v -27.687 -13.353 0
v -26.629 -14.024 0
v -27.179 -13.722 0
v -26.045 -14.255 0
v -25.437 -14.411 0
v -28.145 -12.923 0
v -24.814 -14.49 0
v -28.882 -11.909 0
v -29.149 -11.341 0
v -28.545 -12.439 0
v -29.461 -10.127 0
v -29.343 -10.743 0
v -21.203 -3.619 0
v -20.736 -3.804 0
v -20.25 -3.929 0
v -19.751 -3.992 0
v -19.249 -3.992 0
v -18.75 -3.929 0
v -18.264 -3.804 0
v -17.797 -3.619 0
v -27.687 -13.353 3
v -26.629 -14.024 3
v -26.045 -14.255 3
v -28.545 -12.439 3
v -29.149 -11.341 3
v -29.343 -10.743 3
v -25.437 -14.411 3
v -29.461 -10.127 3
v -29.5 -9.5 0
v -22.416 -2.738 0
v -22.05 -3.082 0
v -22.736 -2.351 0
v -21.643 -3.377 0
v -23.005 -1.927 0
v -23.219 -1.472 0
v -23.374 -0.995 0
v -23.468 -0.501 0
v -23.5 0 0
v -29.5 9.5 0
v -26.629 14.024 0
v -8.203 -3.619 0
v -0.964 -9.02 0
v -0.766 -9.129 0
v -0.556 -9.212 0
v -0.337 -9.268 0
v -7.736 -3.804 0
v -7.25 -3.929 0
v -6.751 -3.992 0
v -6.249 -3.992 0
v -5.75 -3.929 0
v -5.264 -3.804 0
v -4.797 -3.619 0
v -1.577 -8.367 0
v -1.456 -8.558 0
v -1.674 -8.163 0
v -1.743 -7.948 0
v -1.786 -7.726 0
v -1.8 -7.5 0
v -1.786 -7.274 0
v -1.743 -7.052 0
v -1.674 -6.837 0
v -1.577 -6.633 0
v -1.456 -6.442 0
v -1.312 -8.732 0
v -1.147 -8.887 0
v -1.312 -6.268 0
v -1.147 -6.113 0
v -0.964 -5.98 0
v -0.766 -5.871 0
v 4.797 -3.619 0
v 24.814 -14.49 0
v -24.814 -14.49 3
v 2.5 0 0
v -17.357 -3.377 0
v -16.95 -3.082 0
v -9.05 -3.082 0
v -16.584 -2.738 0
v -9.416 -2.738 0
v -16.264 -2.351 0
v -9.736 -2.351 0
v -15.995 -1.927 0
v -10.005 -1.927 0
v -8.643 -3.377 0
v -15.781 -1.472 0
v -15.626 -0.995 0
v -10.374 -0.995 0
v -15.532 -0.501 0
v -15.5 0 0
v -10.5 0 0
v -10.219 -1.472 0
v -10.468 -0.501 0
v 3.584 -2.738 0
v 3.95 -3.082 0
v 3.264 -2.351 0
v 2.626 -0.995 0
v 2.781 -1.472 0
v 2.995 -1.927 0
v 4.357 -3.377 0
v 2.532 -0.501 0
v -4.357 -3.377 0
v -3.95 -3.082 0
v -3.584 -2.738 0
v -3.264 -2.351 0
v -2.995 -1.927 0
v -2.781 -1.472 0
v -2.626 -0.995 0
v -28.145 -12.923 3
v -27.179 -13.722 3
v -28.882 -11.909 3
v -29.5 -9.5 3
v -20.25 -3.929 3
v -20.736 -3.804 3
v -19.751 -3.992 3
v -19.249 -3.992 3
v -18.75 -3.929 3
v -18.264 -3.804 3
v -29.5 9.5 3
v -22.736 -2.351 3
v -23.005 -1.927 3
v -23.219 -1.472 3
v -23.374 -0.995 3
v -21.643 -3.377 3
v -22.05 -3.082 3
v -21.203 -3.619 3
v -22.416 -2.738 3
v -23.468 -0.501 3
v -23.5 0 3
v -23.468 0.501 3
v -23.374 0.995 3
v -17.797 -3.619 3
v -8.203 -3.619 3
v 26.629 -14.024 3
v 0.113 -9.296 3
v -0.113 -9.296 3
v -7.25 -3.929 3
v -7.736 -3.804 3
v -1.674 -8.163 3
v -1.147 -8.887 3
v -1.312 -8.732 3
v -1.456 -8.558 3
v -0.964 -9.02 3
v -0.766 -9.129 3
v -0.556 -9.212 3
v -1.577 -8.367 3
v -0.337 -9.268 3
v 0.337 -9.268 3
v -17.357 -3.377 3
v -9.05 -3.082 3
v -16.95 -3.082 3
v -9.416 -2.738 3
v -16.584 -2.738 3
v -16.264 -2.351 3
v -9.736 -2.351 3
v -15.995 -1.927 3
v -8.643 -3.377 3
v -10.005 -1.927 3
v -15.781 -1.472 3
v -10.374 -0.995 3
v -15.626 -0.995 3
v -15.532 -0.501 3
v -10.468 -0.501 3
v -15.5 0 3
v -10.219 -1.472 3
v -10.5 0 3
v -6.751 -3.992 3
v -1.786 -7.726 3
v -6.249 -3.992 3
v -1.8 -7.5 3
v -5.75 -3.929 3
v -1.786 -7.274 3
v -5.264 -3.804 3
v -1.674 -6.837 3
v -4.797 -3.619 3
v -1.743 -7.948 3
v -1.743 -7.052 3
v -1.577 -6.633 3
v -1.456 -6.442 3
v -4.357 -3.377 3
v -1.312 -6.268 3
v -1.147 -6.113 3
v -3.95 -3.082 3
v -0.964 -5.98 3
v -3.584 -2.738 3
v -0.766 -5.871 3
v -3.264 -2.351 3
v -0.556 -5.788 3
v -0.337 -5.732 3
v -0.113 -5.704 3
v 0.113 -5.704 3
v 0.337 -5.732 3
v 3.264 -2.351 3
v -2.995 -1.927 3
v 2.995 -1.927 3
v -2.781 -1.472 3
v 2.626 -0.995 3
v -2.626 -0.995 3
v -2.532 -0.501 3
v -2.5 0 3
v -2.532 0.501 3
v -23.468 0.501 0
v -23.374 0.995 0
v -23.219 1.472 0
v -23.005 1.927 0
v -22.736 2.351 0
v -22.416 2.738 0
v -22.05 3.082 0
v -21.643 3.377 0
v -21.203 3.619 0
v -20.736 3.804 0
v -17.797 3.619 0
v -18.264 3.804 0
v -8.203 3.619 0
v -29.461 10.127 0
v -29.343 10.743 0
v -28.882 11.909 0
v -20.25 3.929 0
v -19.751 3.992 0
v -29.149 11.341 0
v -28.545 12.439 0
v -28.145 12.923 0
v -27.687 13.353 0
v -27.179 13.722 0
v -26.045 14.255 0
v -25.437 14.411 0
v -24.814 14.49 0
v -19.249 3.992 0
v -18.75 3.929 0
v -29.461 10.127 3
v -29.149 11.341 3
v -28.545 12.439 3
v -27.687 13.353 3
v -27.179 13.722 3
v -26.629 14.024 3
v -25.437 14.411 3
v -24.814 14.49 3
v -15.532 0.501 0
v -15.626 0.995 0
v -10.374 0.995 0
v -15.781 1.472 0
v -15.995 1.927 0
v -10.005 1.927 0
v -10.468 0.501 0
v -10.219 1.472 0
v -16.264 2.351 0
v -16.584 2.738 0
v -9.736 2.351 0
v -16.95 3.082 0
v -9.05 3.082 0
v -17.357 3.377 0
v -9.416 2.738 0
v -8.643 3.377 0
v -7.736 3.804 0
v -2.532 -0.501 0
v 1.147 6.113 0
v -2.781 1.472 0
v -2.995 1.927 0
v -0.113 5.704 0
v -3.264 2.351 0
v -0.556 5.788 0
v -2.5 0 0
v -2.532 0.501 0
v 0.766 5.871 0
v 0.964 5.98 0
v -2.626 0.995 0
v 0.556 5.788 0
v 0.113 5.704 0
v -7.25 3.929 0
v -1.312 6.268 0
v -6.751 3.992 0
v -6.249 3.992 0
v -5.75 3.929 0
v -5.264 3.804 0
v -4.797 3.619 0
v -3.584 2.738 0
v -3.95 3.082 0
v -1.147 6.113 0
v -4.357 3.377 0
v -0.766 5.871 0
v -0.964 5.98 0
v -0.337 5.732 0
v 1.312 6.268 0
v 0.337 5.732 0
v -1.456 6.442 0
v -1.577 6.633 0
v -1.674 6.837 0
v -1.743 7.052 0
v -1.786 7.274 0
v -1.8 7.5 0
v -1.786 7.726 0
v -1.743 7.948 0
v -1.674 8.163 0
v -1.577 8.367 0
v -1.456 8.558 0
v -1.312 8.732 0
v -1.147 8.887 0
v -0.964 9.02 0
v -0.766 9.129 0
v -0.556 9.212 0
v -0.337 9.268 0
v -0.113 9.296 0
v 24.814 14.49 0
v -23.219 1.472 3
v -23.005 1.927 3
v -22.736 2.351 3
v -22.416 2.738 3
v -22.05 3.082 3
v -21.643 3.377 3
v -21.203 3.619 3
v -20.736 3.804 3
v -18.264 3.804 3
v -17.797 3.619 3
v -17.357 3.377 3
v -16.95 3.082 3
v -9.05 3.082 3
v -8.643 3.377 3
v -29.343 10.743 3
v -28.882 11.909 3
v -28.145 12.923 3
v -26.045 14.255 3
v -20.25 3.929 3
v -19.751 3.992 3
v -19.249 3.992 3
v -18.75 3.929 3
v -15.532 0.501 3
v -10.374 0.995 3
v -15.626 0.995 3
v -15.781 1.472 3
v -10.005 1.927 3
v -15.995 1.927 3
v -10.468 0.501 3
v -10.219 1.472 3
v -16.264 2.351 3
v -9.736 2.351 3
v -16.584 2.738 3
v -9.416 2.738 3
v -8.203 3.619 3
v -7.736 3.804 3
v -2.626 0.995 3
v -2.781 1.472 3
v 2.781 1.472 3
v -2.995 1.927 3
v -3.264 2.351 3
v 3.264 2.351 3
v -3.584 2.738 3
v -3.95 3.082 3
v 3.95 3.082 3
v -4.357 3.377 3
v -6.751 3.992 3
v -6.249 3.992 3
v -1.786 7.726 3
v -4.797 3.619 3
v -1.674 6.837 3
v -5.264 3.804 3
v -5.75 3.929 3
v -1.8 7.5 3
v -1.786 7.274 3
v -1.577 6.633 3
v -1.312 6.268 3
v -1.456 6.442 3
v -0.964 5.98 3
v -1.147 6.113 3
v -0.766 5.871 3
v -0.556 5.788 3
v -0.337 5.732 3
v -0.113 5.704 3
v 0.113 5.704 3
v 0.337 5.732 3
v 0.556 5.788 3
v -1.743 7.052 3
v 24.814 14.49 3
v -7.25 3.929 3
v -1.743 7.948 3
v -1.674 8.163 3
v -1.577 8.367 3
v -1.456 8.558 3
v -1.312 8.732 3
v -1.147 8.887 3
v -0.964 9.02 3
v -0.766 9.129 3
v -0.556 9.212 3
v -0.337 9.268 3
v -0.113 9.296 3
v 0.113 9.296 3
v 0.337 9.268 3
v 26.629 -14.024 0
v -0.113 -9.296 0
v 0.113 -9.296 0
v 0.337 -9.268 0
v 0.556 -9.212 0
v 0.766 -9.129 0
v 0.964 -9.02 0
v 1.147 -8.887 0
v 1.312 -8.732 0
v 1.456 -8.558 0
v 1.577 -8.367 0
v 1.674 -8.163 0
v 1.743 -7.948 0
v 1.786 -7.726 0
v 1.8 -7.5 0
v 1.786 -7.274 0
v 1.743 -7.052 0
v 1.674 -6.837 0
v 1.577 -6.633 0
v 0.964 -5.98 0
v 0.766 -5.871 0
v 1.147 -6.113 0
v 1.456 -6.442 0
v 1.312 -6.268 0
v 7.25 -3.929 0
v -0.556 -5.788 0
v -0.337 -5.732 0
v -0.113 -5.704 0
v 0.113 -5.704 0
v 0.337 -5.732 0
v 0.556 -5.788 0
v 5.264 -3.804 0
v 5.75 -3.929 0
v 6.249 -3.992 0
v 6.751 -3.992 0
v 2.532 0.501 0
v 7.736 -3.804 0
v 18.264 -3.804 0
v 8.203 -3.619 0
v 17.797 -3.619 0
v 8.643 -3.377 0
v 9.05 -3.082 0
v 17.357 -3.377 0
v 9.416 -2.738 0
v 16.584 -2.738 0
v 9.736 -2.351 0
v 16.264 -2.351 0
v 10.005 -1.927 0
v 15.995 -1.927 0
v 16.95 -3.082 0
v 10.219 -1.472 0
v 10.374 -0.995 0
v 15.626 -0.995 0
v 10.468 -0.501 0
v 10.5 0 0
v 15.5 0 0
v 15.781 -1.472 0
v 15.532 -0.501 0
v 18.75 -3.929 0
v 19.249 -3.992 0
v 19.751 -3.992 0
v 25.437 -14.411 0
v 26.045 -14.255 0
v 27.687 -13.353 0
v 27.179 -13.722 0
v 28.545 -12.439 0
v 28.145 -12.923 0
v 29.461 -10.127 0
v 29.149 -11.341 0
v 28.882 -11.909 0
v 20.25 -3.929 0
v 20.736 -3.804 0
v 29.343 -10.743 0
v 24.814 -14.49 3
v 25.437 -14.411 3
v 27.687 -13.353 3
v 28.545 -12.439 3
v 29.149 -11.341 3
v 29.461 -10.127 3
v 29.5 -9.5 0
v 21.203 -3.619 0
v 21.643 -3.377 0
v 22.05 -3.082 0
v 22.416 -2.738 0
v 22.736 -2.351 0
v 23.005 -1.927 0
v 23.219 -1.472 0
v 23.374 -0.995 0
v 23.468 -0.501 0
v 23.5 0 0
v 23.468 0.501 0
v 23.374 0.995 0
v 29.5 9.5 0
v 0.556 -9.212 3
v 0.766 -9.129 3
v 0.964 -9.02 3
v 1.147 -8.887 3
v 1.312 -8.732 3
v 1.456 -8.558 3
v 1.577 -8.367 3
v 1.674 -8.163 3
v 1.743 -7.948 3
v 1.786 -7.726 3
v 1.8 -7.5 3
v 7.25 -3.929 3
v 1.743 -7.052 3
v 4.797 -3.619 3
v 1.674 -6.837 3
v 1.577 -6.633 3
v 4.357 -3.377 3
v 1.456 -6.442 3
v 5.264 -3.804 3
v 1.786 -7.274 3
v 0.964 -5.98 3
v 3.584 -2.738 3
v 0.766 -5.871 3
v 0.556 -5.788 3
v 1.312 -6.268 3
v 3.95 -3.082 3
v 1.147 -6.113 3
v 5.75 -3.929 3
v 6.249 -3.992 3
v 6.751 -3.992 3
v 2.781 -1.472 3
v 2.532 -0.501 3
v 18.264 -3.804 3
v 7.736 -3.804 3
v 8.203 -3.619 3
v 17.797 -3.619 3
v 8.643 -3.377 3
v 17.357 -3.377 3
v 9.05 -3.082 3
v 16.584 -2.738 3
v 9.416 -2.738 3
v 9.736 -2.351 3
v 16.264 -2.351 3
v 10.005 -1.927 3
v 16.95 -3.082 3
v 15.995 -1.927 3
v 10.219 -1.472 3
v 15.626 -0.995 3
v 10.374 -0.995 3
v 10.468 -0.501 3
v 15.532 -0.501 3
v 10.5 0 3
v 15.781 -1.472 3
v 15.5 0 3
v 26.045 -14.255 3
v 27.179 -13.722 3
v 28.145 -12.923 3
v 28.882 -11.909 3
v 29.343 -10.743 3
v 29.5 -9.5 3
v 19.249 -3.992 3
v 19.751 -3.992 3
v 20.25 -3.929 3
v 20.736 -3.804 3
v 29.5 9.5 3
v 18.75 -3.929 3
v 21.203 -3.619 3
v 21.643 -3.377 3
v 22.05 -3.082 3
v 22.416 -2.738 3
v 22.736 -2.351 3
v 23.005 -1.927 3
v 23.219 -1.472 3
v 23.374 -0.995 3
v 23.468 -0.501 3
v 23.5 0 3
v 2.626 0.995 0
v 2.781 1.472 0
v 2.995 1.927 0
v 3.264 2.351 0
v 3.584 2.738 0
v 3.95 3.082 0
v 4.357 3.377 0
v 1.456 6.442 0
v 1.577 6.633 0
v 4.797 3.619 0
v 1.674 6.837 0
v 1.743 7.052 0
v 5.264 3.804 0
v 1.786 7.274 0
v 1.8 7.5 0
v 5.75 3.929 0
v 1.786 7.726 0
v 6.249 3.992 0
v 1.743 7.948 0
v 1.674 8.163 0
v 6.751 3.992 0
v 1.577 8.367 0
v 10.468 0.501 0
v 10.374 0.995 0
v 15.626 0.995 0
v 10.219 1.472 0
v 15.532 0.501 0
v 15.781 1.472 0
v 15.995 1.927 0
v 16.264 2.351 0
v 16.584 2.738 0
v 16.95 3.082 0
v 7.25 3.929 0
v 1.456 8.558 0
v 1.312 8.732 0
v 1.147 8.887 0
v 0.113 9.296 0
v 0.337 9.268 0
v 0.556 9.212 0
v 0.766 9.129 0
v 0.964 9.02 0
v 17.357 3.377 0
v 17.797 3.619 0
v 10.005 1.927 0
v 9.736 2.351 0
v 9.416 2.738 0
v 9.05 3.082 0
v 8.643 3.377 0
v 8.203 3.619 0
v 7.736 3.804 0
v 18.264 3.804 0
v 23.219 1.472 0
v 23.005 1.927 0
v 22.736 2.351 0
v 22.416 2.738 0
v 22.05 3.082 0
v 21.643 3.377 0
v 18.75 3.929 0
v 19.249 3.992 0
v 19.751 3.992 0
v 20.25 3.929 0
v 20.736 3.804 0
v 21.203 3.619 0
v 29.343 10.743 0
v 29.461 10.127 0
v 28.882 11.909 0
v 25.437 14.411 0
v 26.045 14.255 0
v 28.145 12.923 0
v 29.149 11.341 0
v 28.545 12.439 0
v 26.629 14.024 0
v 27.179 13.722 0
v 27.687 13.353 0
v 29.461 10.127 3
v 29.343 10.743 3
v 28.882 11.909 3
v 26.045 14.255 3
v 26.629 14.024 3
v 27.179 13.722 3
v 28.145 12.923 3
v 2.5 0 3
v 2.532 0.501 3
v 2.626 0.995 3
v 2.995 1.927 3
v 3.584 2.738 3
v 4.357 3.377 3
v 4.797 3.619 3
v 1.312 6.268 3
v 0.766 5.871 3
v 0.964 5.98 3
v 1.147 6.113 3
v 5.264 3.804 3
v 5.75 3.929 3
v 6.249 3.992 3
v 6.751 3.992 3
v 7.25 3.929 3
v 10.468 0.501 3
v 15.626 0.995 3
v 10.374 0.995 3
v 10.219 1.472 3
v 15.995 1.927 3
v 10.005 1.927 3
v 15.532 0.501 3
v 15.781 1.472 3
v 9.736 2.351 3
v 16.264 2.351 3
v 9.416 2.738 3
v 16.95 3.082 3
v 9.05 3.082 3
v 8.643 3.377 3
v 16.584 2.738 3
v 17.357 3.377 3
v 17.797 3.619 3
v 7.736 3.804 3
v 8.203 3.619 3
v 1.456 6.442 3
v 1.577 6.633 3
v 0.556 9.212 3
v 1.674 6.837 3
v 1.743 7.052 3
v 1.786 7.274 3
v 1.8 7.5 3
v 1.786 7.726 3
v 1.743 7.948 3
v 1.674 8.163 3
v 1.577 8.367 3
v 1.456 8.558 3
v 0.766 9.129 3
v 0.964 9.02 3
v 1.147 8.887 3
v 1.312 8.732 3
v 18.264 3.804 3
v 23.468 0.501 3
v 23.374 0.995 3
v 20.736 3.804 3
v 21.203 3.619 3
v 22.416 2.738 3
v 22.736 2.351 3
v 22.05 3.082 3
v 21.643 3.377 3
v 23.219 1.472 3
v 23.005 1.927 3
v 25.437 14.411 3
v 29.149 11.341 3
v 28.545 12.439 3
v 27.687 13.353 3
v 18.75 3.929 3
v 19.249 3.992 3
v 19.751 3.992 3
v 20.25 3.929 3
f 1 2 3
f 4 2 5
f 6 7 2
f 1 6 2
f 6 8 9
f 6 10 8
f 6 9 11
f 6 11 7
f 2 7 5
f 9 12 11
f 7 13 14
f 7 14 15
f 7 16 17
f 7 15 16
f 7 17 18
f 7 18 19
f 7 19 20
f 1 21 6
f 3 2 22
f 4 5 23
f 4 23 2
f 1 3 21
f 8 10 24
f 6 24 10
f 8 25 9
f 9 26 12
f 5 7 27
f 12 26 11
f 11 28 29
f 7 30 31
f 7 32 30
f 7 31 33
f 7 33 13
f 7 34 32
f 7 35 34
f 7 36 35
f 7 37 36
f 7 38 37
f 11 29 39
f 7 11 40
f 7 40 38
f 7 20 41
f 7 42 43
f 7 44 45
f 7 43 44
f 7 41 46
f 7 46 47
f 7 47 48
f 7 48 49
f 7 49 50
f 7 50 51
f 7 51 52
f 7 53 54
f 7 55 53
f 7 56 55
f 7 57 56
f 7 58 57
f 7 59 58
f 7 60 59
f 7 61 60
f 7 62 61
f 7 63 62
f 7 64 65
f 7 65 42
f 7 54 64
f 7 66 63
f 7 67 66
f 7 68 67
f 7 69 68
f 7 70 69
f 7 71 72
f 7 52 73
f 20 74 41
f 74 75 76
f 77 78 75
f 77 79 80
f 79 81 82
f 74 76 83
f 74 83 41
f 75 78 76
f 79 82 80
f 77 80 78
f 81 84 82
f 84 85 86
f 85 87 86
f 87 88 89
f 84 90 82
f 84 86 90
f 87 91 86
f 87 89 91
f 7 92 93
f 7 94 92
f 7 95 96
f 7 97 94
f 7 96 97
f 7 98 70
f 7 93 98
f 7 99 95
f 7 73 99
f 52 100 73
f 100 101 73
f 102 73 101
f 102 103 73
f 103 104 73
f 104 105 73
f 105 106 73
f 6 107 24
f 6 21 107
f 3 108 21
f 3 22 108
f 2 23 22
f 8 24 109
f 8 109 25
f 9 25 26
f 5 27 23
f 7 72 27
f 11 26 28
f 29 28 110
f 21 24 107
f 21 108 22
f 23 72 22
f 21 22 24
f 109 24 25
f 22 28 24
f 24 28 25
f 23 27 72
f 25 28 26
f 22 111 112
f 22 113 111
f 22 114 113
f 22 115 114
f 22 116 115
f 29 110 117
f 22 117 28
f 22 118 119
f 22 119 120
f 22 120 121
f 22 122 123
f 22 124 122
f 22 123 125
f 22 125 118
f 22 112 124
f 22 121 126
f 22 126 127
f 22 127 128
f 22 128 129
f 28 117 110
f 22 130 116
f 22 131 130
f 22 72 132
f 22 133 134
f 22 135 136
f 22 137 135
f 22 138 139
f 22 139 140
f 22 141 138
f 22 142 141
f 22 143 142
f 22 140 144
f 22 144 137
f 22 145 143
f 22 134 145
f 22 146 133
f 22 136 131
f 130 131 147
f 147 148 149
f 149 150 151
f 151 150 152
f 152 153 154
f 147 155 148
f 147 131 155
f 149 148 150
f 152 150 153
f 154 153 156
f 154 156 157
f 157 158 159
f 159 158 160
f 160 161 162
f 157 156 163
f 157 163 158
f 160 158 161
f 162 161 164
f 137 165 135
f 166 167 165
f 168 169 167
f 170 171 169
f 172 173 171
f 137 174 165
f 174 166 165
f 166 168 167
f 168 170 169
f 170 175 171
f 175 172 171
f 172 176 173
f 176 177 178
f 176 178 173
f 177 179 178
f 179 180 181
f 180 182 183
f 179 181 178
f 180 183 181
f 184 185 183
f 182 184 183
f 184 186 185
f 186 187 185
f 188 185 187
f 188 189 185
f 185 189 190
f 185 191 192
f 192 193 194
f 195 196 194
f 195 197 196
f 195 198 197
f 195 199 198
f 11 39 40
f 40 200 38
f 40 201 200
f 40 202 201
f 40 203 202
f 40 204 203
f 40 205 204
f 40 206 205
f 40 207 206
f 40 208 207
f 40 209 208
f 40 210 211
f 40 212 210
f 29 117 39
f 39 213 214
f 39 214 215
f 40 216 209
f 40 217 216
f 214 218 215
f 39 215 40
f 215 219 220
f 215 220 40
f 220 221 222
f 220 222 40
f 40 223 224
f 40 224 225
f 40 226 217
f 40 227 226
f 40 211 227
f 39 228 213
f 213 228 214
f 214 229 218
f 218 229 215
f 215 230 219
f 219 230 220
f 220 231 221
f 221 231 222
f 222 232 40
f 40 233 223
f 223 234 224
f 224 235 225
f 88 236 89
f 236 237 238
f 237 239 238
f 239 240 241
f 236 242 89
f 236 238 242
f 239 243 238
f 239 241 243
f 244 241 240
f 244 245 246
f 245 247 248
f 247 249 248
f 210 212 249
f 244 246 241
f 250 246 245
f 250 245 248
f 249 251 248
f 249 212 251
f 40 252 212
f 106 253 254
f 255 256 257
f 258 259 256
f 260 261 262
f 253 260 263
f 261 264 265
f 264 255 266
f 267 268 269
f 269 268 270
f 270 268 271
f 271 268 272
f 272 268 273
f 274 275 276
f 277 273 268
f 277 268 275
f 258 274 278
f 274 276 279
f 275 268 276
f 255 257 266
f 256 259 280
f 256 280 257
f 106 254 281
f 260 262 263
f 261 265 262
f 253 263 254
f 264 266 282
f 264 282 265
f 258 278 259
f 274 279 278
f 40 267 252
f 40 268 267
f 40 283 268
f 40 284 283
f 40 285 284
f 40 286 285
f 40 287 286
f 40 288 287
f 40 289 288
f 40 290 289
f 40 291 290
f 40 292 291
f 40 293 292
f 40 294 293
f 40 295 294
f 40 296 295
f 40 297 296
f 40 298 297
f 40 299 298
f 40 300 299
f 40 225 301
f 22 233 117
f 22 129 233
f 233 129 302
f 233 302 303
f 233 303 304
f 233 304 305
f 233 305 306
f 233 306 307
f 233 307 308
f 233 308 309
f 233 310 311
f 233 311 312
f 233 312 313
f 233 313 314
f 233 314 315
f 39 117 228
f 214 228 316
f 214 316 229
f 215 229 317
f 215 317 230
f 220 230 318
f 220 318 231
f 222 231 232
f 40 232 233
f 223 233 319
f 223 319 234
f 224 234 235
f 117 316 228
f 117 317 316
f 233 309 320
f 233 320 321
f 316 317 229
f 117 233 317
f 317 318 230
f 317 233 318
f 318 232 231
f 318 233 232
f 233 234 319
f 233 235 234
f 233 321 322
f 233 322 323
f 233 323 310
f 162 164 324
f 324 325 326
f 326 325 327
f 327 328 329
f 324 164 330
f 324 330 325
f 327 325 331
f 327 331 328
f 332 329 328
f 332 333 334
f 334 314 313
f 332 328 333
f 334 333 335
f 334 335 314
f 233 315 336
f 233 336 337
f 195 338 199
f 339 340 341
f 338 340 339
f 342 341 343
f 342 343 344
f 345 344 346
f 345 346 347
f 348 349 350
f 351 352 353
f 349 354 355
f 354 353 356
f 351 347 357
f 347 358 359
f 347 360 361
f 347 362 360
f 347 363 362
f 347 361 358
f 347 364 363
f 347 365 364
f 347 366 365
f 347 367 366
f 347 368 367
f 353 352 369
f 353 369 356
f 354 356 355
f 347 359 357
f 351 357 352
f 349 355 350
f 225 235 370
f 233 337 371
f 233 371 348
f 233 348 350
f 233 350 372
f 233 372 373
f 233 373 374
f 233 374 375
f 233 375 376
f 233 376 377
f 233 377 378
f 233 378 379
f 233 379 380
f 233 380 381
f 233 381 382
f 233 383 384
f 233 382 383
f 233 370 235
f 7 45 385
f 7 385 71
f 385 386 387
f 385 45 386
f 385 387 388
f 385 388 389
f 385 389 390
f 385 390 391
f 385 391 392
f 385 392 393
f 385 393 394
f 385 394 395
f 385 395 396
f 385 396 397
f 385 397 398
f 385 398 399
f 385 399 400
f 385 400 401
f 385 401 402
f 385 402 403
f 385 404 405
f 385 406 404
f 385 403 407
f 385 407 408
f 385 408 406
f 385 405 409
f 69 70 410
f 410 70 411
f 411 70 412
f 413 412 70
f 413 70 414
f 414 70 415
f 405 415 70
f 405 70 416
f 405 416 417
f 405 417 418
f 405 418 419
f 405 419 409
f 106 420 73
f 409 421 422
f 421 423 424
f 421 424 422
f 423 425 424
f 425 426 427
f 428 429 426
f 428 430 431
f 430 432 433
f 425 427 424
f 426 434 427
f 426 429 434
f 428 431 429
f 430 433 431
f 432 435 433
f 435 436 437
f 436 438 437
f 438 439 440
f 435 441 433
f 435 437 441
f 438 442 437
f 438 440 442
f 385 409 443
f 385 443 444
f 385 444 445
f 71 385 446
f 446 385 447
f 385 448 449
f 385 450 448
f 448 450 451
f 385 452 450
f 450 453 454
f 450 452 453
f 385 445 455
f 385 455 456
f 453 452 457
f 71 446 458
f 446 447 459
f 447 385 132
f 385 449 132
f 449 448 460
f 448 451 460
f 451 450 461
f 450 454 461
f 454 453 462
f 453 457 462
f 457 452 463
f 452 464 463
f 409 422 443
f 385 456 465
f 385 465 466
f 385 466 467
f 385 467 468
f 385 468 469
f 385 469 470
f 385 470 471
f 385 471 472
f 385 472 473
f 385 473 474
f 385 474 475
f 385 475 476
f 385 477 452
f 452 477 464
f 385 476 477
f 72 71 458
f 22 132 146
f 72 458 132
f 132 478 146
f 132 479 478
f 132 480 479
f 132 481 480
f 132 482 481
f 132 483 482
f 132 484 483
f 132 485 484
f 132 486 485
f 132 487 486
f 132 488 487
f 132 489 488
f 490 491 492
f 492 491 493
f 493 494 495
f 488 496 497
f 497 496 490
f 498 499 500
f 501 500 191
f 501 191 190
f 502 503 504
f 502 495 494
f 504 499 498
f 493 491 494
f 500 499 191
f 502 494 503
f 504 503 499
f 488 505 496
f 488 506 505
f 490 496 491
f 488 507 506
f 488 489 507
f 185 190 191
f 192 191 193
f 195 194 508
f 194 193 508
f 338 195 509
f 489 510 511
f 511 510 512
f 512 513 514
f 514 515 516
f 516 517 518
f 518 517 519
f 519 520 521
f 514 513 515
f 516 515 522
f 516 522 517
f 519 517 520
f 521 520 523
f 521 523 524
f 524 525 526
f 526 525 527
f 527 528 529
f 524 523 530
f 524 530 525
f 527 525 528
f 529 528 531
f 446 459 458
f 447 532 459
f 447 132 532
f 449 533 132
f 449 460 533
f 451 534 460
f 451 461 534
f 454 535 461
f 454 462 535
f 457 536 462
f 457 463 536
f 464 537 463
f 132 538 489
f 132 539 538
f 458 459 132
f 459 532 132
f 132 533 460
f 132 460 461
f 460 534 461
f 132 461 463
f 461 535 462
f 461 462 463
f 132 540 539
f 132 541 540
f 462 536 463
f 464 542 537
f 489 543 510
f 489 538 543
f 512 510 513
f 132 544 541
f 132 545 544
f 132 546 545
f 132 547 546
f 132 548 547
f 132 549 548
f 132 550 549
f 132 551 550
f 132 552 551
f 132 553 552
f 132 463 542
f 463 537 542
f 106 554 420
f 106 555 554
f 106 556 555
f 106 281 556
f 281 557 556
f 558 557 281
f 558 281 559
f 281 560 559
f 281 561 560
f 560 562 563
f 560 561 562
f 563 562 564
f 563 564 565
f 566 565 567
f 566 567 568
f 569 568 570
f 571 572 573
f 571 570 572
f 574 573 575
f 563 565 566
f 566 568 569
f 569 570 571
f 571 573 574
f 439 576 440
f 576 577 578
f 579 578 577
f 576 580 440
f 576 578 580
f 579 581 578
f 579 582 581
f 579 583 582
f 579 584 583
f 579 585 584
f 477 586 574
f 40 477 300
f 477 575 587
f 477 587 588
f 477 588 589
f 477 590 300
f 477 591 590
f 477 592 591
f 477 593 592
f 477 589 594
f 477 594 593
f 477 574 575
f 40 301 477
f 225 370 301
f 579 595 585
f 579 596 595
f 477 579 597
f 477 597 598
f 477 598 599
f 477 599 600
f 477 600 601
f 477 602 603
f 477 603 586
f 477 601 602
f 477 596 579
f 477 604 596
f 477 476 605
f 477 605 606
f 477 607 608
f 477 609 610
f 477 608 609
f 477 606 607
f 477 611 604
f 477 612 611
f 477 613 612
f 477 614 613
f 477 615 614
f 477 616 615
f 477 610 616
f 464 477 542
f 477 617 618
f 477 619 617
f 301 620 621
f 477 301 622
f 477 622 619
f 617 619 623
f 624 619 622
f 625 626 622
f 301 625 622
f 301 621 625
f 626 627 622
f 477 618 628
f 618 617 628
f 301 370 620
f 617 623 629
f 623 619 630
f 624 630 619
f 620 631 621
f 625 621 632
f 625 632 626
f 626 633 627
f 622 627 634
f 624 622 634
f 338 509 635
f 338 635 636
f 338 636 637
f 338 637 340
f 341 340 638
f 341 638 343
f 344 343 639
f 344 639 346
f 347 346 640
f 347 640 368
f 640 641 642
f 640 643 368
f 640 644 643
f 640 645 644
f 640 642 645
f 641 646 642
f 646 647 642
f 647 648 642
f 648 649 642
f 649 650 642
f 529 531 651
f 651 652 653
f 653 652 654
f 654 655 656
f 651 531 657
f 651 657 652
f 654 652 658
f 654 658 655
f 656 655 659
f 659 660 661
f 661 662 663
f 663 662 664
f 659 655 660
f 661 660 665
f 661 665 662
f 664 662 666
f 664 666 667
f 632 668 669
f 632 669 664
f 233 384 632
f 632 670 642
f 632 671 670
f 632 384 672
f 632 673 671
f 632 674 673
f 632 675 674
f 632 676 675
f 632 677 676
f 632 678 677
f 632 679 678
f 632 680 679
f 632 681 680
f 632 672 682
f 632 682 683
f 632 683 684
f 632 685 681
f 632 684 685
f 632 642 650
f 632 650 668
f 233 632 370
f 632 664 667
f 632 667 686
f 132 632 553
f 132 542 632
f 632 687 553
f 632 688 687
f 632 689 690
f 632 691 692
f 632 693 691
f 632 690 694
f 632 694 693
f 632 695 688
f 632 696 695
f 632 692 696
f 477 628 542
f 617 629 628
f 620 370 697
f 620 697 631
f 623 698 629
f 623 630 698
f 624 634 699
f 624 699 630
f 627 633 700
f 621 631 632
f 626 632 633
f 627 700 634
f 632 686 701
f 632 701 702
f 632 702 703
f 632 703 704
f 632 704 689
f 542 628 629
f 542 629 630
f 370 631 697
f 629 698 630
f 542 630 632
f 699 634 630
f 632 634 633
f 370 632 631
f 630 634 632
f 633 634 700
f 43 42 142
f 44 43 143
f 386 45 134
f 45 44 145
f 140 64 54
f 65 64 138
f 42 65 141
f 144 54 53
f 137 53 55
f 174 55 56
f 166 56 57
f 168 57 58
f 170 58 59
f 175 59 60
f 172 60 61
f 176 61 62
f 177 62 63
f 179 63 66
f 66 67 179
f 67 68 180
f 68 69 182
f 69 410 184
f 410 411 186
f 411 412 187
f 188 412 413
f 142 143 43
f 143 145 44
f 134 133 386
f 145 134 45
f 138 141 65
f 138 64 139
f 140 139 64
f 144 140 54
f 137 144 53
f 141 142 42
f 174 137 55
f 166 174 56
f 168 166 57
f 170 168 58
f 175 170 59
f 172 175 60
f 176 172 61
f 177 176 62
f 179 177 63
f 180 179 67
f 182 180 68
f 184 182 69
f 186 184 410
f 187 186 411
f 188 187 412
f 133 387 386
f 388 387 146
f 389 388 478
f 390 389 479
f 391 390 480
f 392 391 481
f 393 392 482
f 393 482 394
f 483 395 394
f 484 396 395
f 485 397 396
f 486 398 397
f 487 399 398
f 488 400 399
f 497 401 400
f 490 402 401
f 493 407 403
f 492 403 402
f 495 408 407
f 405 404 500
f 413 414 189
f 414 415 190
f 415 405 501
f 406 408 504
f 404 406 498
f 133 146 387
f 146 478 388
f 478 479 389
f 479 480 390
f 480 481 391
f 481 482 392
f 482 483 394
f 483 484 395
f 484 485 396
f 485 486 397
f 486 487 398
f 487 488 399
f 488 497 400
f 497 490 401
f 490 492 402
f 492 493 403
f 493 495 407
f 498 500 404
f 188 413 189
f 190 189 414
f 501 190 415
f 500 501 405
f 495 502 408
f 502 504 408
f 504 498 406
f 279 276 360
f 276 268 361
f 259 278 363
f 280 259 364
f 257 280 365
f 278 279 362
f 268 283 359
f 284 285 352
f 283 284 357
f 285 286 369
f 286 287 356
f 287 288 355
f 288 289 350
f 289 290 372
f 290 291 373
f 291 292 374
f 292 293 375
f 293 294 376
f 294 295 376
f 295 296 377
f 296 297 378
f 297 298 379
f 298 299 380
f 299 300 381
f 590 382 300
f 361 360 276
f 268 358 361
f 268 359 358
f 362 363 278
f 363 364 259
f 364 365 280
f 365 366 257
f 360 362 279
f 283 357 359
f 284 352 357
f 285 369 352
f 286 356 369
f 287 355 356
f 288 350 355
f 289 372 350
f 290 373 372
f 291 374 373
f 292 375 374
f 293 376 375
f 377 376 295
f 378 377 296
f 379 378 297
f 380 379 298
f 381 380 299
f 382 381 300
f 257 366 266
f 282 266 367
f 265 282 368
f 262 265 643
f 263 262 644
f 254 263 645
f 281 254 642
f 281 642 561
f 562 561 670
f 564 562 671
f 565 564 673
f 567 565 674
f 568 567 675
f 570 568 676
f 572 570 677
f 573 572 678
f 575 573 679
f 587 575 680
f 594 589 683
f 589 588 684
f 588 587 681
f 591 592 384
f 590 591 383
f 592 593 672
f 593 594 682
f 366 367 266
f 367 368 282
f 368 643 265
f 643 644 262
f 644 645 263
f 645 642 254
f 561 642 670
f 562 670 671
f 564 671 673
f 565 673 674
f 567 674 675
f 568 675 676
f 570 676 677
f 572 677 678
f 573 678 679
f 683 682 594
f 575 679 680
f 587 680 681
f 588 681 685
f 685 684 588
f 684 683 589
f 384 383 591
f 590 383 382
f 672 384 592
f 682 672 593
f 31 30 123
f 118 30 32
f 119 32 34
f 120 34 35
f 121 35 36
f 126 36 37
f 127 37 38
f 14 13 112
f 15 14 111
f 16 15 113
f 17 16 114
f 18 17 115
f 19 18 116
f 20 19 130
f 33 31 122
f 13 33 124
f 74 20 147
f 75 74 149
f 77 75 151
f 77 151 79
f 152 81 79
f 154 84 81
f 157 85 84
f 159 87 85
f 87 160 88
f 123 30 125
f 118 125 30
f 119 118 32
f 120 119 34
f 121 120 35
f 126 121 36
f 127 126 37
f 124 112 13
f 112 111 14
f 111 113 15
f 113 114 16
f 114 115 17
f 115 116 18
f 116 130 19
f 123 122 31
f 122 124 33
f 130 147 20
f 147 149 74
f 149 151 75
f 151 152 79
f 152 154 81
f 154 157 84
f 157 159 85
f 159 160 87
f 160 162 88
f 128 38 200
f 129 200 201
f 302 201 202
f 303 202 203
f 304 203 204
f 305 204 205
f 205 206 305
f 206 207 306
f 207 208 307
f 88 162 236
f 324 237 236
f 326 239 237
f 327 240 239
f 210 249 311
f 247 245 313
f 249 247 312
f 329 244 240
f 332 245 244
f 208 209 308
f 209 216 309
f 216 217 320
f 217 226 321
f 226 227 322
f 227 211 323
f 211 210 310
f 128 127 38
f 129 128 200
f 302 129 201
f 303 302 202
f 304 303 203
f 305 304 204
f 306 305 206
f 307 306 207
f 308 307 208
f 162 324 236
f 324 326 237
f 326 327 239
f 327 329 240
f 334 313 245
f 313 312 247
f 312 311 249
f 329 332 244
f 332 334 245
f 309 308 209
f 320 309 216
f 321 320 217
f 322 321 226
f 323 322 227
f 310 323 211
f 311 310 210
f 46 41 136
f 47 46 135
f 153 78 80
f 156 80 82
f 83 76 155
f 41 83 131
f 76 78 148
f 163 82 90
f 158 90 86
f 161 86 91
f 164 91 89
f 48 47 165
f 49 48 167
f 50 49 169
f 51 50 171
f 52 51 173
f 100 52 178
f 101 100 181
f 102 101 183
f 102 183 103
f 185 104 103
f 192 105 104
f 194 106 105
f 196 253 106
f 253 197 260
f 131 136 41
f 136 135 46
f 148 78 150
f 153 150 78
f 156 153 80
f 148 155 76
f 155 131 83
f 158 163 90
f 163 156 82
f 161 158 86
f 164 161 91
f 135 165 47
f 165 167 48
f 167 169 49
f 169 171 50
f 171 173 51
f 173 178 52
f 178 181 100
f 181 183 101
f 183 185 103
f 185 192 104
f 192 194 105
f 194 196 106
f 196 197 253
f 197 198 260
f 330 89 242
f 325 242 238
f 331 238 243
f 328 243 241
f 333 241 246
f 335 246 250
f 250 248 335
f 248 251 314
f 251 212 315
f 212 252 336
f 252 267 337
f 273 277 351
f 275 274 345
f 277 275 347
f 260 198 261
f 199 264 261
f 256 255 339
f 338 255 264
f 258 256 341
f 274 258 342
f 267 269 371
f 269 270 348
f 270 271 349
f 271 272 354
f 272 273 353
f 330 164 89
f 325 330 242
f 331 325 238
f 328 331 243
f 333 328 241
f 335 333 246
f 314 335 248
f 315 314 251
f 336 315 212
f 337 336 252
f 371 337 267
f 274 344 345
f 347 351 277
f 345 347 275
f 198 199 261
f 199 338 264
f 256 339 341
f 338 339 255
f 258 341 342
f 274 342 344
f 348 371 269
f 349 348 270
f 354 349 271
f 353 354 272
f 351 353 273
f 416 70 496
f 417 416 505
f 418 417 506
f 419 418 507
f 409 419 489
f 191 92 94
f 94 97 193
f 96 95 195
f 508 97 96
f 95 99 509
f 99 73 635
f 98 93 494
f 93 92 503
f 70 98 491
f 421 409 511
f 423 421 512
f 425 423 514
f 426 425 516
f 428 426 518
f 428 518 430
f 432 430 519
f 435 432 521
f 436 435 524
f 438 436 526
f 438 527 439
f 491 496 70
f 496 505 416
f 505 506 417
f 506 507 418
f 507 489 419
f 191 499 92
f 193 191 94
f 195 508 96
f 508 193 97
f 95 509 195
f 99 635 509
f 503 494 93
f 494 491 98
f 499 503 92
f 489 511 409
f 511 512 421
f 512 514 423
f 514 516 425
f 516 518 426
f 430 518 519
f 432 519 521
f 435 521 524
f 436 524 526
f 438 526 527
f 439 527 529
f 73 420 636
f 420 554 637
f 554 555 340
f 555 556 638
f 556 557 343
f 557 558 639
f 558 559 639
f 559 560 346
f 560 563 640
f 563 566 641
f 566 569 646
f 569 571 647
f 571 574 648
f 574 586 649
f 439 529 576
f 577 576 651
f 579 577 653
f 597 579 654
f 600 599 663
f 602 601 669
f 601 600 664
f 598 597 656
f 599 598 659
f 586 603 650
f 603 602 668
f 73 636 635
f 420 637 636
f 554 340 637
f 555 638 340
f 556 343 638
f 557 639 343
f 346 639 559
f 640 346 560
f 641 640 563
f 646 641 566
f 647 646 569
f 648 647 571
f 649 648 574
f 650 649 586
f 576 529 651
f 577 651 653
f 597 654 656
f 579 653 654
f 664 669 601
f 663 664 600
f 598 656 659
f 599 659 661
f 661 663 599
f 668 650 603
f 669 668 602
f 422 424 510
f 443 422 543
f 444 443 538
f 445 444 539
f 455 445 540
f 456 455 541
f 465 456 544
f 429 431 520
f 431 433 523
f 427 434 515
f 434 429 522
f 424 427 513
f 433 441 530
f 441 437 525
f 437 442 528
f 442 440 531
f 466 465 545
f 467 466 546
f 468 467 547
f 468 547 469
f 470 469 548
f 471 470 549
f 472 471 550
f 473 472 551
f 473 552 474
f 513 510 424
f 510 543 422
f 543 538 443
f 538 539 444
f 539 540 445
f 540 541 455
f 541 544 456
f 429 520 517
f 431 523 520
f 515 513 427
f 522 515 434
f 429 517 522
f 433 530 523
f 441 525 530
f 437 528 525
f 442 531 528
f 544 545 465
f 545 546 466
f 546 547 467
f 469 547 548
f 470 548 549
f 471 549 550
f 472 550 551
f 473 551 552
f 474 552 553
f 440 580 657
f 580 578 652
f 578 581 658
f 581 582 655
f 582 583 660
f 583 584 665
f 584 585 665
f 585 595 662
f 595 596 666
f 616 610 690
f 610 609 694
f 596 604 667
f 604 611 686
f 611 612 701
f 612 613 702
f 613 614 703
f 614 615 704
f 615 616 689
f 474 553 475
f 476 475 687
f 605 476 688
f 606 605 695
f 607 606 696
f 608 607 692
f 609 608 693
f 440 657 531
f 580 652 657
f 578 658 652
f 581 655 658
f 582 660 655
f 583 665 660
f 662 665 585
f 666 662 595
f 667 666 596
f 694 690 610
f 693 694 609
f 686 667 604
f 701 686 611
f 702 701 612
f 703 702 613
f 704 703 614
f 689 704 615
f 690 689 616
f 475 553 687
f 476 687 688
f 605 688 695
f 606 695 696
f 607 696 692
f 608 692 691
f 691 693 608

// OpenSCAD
$fn = 50;

difference() {
	union() {
		hull() {
			translate(v = [-24.5, 9.5, 0]) {
				cylinder(h = 3, r = 5);
			}
			translate(v = [24.5, 9.5, 0]) {
				cylinder(h = 3, r = 5);
			}
			translate(v = [-24.5, -9.5, 0]) {
				cylinder(h = 3, r = 5);
			}
			translate(v = [24.5, -9.5, 0]) {
				cylinder(h = 3, r = 5);
			}
		}
	}
	union() {
		translate(v = [0.0, -7.5, 0]) {
			cylinder(h = 3, r = 1.8);
		}
		translate(v = [0.0, 7.5, 0]) {
			cylinder(h = 3, r = 1.8);
		}
		translate(v = [-19.5, 0, 0.0]) {
			cylinder(h = 3, r = 4.0);
		}
		translate(v = [-6.5, 0, 0.0]) {
			cylinder(h = 3, r = 4.0);
		}
		translate(v = [6.5, 0, 0.0]) {
			cylinder(h = 3, r = 4.0);
		}
		translate(v = [19.5, 0, 0.0]) {
			cylinder(h = 3, r = 4.0);
		}
	}
}
